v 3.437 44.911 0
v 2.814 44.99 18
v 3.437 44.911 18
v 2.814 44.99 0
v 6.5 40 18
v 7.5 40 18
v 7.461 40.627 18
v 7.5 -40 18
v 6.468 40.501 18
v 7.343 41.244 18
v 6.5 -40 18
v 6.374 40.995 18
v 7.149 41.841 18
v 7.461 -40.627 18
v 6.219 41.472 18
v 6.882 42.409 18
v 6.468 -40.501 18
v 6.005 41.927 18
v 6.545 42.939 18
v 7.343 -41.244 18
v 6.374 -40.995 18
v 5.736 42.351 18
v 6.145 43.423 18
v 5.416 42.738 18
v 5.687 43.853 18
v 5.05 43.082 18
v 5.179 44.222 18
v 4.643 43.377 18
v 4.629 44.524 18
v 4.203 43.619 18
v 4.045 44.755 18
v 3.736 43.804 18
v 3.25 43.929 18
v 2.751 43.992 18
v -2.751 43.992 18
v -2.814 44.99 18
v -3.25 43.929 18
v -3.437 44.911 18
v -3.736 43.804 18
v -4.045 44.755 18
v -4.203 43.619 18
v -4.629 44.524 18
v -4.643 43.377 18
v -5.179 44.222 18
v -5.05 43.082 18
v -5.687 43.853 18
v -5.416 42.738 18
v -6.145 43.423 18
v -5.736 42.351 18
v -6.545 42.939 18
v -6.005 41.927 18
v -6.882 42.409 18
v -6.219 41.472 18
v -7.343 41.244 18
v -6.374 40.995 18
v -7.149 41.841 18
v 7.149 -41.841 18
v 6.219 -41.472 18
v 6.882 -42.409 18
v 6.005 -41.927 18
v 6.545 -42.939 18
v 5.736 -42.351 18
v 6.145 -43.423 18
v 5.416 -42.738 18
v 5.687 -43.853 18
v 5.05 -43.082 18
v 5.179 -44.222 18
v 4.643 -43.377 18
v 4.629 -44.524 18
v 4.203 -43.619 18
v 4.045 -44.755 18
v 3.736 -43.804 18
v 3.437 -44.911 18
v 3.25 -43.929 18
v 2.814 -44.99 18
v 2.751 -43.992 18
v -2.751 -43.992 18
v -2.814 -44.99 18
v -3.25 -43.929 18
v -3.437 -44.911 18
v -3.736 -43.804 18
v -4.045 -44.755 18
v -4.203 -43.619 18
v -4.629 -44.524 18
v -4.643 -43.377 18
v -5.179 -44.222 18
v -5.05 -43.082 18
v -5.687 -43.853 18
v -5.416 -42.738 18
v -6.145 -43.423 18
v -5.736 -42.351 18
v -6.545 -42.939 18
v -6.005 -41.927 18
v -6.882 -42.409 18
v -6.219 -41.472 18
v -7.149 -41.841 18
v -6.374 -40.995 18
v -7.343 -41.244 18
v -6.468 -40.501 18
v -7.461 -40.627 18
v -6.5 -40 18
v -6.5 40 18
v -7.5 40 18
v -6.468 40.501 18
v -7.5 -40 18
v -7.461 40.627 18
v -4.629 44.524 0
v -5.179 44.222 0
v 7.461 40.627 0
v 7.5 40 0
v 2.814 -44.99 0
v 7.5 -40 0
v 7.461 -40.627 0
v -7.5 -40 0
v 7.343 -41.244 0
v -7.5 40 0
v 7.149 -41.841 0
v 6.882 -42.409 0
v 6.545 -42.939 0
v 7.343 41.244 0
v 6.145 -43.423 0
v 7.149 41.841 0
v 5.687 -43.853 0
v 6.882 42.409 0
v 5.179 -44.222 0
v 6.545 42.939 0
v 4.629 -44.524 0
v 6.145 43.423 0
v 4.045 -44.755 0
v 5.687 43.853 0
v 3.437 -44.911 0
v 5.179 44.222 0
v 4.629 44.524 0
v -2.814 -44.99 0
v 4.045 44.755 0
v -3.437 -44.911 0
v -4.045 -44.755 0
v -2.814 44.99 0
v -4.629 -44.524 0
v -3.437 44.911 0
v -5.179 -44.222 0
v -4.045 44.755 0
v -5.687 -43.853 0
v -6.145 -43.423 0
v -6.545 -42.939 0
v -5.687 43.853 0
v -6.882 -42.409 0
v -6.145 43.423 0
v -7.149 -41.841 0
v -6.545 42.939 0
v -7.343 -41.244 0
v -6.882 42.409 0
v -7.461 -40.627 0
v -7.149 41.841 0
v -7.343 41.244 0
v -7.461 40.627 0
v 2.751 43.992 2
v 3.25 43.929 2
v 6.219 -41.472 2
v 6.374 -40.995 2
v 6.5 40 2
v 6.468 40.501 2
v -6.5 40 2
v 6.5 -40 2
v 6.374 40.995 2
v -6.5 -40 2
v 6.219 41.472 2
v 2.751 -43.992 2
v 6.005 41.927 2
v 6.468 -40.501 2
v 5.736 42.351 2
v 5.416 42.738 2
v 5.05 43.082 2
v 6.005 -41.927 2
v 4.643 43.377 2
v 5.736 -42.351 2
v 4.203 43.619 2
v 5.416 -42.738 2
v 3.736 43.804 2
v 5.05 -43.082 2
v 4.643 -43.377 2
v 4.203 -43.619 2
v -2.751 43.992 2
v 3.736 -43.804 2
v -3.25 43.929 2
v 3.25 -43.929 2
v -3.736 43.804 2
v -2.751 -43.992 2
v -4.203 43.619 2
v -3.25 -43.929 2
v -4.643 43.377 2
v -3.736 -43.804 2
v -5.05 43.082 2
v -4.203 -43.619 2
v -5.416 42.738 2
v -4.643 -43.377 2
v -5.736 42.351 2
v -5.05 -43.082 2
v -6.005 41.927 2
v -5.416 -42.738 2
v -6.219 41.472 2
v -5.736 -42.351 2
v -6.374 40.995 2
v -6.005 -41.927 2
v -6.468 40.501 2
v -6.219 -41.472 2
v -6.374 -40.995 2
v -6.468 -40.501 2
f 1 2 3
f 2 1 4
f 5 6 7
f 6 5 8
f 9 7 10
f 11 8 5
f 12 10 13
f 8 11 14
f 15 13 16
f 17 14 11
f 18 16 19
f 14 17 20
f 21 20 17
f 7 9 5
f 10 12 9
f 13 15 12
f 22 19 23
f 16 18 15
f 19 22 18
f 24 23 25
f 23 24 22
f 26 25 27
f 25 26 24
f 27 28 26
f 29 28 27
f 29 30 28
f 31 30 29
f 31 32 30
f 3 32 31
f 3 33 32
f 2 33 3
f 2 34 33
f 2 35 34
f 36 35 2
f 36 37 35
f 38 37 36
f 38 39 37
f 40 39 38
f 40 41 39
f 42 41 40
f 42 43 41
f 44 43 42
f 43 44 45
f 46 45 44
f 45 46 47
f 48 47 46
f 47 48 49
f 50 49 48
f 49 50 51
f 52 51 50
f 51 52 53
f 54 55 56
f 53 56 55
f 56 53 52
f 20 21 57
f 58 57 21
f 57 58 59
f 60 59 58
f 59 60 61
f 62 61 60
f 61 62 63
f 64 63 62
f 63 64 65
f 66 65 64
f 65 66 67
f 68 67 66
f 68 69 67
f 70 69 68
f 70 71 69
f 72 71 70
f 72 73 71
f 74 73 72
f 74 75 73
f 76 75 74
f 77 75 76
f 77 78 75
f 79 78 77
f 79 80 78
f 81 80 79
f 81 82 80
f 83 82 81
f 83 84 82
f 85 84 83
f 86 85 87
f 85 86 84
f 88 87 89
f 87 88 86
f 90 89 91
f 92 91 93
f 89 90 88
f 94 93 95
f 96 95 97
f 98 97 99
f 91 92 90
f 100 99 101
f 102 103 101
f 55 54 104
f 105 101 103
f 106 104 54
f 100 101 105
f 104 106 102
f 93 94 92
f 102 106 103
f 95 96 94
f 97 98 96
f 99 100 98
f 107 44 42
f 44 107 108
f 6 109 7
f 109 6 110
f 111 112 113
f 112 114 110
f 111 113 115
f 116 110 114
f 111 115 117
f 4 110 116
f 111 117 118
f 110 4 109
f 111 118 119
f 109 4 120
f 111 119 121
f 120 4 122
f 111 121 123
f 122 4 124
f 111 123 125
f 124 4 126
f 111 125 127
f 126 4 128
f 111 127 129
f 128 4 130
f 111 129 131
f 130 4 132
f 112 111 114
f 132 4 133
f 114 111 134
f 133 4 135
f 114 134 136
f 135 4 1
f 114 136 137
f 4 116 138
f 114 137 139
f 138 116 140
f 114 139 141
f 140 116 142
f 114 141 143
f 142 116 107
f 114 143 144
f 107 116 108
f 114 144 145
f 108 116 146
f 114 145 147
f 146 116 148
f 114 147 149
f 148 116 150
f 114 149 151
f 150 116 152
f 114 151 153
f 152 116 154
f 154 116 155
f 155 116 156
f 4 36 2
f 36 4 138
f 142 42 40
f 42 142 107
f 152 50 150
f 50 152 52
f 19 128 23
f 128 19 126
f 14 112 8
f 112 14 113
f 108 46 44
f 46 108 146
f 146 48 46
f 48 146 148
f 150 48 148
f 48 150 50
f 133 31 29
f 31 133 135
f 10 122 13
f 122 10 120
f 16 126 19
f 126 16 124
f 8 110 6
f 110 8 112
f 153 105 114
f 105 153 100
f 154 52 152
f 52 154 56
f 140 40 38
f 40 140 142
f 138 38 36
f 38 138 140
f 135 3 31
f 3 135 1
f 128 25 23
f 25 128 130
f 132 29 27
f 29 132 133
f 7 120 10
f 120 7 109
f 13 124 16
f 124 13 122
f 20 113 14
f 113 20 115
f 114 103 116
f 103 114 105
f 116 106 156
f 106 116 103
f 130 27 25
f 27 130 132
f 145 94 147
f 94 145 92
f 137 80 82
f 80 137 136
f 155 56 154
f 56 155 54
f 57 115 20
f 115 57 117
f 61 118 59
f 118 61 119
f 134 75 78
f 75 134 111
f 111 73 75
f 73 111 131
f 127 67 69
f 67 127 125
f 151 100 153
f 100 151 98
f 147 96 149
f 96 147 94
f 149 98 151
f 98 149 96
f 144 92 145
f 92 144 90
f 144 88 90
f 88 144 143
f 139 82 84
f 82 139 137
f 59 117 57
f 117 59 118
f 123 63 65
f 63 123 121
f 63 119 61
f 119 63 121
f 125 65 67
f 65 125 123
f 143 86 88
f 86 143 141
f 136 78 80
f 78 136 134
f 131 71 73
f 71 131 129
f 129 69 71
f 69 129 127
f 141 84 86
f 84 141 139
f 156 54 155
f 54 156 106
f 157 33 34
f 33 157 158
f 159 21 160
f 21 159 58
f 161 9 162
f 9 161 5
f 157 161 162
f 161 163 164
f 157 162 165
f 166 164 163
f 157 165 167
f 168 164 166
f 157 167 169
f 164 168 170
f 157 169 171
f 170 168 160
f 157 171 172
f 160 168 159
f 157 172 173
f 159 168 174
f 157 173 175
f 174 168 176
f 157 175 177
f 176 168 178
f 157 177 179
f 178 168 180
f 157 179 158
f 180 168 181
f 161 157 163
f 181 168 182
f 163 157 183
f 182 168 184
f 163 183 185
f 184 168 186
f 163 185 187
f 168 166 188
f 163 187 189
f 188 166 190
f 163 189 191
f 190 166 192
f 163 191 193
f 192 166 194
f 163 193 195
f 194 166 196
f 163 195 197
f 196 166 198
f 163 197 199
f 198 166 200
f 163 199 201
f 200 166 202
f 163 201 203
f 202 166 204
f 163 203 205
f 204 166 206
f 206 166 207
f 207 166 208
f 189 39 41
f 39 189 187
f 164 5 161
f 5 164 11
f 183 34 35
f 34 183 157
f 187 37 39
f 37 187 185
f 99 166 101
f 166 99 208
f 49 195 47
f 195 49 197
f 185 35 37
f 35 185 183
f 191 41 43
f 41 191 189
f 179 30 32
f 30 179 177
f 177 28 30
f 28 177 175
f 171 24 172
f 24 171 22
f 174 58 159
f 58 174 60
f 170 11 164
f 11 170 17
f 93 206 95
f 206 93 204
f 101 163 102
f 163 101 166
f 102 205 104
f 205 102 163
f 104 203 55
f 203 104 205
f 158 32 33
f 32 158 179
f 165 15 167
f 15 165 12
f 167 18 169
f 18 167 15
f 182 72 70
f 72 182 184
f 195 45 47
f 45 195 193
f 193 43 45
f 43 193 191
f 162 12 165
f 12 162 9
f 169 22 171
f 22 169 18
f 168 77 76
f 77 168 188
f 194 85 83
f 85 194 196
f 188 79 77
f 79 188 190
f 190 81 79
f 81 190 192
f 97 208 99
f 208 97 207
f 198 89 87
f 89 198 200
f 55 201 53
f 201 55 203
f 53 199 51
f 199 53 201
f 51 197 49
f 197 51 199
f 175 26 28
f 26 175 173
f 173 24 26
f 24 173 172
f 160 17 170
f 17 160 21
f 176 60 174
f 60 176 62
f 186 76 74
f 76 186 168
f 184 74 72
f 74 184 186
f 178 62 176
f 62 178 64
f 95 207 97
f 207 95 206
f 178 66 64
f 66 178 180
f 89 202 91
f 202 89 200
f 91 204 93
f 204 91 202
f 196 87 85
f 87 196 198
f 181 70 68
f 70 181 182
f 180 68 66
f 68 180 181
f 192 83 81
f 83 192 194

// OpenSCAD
$fn = 50;


difference() {
	union() {
		hull() {
			translate(v = [-2.5000000000, 40.0000000000, 0]) {
				cylinder(h = 18, r = 5);
			}
			translate(v = [2.5000000000, 40.0000000000, 0]) {
				cylinder(h = 18, r = 5);
			}
			translate(v = [-2.5000000000, -40.0000000000, 0]) {
				cylinder(h = 18, r = 5);
			}
			translate(v = [2.5000000000, -40.0000000000, 0]) {
				cylinder(h = 18, r = 5);
			}
		}
	}
	union() {
		translate(v = [0, 0, 2]) {
			hull() {
				translate(v = [-2.5000000000, 40.0000000000, 0]) {
					cylinder(h = 16, r = 4);
				}
				translate(v = [2.5000000000, 40.0000000000, 0]) {
					cylinder(h = 16, r = 4);
				}
				translate(v = [-2.5000000000, -40.0000000000, 0]) {
					cylinder(h = 16, r = 4);
				}
				translate(v = [2.5000000000, -40.0000000000, 0]) {
					cylinder(h = 16, r = 4);
				}
			}
		}
	}
}
